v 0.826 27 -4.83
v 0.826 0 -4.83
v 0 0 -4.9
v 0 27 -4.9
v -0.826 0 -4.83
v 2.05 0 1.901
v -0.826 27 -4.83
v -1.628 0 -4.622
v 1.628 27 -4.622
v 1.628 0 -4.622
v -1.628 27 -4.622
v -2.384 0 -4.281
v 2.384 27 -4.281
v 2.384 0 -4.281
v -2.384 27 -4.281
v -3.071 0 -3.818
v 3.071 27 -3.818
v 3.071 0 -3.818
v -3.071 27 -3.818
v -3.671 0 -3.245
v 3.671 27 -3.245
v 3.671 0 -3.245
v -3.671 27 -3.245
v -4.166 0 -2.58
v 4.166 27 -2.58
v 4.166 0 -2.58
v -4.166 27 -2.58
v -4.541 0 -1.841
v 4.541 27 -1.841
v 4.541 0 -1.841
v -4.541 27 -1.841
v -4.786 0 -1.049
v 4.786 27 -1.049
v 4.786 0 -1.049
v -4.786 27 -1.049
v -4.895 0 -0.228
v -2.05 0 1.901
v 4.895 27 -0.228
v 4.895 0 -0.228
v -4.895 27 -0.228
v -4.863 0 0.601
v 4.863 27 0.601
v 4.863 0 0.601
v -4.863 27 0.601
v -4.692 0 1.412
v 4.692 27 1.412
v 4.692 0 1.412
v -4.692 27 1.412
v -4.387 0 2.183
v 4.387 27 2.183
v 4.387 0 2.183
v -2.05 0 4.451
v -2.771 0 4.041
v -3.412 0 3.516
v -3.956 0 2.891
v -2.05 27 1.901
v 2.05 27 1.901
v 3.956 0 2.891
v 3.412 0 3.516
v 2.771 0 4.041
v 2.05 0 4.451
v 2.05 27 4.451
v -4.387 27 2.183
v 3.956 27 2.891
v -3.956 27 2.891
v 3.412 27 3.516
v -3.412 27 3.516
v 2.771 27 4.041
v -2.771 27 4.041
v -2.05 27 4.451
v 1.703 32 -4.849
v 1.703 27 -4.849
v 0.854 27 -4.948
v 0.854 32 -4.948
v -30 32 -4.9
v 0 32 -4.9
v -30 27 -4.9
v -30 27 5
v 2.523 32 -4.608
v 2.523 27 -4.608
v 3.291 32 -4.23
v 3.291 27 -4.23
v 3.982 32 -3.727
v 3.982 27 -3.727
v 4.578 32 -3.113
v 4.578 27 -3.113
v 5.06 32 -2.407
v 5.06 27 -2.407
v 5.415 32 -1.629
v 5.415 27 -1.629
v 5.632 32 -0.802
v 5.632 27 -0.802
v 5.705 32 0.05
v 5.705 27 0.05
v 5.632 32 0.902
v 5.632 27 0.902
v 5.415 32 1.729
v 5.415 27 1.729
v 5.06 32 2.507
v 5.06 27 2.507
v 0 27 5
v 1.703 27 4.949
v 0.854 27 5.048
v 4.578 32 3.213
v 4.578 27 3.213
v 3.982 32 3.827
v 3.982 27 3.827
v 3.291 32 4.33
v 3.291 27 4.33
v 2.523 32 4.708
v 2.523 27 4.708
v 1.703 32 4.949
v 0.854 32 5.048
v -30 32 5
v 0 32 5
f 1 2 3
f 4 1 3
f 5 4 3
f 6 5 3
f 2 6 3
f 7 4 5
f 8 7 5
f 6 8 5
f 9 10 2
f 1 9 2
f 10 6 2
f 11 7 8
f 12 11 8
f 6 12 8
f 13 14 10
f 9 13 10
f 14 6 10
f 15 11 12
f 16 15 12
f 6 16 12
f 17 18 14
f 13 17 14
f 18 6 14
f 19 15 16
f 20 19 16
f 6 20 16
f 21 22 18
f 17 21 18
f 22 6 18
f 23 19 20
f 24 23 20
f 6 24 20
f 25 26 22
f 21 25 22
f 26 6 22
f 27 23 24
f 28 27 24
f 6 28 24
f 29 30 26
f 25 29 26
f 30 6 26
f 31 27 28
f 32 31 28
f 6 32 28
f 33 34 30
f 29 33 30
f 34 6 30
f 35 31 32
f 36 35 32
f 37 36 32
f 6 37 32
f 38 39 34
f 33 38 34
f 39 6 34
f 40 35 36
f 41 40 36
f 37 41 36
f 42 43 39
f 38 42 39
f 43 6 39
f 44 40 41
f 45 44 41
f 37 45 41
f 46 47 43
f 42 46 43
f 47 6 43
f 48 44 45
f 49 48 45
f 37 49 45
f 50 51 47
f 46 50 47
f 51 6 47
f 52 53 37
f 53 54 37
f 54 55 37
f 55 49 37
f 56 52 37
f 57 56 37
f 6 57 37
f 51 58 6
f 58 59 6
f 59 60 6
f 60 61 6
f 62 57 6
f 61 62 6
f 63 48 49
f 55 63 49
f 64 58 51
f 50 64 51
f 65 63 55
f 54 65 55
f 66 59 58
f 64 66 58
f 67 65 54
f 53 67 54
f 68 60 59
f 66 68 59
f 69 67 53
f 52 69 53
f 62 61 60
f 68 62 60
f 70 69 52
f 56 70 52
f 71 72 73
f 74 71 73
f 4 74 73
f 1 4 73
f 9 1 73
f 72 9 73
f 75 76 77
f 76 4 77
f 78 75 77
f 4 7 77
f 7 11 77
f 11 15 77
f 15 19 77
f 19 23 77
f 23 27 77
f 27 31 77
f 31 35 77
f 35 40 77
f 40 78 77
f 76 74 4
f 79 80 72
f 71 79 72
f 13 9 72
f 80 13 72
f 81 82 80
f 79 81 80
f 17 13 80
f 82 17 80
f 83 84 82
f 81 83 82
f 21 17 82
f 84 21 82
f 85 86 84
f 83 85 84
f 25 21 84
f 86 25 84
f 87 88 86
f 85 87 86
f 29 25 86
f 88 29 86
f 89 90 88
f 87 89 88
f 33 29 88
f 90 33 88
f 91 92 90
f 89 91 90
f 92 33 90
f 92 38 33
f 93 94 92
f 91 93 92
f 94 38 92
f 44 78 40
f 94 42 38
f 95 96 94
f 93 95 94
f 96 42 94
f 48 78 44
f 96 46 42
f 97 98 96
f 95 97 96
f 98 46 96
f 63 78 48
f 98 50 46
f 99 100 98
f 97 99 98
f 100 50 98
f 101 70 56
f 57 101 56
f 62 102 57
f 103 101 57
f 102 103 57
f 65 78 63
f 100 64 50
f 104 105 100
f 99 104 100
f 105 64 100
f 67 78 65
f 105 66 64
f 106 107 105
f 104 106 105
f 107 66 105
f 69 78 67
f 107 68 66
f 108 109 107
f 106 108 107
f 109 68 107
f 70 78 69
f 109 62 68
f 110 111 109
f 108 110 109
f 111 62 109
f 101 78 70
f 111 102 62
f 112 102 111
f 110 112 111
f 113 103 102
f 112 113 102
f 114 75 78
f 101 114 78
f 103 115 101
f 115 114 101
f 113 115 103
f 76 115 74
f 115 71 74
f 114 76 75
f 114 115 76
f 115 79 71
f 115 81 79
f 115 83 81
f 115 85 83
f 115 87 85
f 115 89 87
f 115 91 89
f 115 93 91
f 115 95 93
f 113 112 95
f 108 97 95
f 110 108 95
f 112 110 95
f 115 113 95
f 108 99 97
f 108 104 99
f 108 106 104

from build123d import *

# Parameters (mm, degrees)
SKETCH1_R           = 4.9
BOSS_EXTRUDE1_DEPTH = 27
CUT_EXTRUDE1_START  = -28
CUT_EXTRUDE1_DEPTH  = 28
BOSS_EXTRUDE2_DEPTH = 5


with BuildPart() as part:
    # Sketch1 → Boss-Extrude1 (new body)
    with BuildSketch(Plane(origin=(0, 0, 0), x_dir=(1, 0, 0), z_dir=(0, 1, 0))):
        with Locations(Location((0, 0, 0), (0, 0, 270))):
            Circle(SKETCH1_R)
    extrude(amount=BOSS_EXTRUDE1_DEPTH)

    # Sketch3 → Cut-Extrude1 (cut)
    with BuildSketch(Plane(origin=(0, 27, 0), x_dir=(1, 0, 0), z_dir=(0, 1, 0)).offset(CUT_EXTRUDE1_START)):
        with BuildLine():
            Line((-2.05, -4.450561762), (-2.05, -1.900561762))
            Line((-2.05, -1.900561762), (2.05, -1.900561762))
            Line((2.05, -1.900561762), (2.05, -4.450561762))
            ThreePointArc((2.05, -4.450561762), (0, -4.9), (-2.05, -4.450561762))
        make_face()
    extrude(amount=CUT_EXTRUDE1_DEPTH, mode=Mode.SUBTRACT)

    # Sketch2 → Boss-Extrude2 (add)
    with BuildSketch(Plane(origin=(0, 27, 0), x_dir=(1, 0, 0), z_dir=(0, 1, 0))):
        with BuildLine():
            Line((0, 4.9), (-30, 4.9))
            Line((-30, 4.9), (-30, -5))
            Line((-30, -5), (0, -5))
            ThreePointArc((0, -5), (5.705336799, -0.05), (0, 4.9))
        make_face()
    extrude(amount=BOSS_EXTRUDE2_DEPTH)


solid = part.part
